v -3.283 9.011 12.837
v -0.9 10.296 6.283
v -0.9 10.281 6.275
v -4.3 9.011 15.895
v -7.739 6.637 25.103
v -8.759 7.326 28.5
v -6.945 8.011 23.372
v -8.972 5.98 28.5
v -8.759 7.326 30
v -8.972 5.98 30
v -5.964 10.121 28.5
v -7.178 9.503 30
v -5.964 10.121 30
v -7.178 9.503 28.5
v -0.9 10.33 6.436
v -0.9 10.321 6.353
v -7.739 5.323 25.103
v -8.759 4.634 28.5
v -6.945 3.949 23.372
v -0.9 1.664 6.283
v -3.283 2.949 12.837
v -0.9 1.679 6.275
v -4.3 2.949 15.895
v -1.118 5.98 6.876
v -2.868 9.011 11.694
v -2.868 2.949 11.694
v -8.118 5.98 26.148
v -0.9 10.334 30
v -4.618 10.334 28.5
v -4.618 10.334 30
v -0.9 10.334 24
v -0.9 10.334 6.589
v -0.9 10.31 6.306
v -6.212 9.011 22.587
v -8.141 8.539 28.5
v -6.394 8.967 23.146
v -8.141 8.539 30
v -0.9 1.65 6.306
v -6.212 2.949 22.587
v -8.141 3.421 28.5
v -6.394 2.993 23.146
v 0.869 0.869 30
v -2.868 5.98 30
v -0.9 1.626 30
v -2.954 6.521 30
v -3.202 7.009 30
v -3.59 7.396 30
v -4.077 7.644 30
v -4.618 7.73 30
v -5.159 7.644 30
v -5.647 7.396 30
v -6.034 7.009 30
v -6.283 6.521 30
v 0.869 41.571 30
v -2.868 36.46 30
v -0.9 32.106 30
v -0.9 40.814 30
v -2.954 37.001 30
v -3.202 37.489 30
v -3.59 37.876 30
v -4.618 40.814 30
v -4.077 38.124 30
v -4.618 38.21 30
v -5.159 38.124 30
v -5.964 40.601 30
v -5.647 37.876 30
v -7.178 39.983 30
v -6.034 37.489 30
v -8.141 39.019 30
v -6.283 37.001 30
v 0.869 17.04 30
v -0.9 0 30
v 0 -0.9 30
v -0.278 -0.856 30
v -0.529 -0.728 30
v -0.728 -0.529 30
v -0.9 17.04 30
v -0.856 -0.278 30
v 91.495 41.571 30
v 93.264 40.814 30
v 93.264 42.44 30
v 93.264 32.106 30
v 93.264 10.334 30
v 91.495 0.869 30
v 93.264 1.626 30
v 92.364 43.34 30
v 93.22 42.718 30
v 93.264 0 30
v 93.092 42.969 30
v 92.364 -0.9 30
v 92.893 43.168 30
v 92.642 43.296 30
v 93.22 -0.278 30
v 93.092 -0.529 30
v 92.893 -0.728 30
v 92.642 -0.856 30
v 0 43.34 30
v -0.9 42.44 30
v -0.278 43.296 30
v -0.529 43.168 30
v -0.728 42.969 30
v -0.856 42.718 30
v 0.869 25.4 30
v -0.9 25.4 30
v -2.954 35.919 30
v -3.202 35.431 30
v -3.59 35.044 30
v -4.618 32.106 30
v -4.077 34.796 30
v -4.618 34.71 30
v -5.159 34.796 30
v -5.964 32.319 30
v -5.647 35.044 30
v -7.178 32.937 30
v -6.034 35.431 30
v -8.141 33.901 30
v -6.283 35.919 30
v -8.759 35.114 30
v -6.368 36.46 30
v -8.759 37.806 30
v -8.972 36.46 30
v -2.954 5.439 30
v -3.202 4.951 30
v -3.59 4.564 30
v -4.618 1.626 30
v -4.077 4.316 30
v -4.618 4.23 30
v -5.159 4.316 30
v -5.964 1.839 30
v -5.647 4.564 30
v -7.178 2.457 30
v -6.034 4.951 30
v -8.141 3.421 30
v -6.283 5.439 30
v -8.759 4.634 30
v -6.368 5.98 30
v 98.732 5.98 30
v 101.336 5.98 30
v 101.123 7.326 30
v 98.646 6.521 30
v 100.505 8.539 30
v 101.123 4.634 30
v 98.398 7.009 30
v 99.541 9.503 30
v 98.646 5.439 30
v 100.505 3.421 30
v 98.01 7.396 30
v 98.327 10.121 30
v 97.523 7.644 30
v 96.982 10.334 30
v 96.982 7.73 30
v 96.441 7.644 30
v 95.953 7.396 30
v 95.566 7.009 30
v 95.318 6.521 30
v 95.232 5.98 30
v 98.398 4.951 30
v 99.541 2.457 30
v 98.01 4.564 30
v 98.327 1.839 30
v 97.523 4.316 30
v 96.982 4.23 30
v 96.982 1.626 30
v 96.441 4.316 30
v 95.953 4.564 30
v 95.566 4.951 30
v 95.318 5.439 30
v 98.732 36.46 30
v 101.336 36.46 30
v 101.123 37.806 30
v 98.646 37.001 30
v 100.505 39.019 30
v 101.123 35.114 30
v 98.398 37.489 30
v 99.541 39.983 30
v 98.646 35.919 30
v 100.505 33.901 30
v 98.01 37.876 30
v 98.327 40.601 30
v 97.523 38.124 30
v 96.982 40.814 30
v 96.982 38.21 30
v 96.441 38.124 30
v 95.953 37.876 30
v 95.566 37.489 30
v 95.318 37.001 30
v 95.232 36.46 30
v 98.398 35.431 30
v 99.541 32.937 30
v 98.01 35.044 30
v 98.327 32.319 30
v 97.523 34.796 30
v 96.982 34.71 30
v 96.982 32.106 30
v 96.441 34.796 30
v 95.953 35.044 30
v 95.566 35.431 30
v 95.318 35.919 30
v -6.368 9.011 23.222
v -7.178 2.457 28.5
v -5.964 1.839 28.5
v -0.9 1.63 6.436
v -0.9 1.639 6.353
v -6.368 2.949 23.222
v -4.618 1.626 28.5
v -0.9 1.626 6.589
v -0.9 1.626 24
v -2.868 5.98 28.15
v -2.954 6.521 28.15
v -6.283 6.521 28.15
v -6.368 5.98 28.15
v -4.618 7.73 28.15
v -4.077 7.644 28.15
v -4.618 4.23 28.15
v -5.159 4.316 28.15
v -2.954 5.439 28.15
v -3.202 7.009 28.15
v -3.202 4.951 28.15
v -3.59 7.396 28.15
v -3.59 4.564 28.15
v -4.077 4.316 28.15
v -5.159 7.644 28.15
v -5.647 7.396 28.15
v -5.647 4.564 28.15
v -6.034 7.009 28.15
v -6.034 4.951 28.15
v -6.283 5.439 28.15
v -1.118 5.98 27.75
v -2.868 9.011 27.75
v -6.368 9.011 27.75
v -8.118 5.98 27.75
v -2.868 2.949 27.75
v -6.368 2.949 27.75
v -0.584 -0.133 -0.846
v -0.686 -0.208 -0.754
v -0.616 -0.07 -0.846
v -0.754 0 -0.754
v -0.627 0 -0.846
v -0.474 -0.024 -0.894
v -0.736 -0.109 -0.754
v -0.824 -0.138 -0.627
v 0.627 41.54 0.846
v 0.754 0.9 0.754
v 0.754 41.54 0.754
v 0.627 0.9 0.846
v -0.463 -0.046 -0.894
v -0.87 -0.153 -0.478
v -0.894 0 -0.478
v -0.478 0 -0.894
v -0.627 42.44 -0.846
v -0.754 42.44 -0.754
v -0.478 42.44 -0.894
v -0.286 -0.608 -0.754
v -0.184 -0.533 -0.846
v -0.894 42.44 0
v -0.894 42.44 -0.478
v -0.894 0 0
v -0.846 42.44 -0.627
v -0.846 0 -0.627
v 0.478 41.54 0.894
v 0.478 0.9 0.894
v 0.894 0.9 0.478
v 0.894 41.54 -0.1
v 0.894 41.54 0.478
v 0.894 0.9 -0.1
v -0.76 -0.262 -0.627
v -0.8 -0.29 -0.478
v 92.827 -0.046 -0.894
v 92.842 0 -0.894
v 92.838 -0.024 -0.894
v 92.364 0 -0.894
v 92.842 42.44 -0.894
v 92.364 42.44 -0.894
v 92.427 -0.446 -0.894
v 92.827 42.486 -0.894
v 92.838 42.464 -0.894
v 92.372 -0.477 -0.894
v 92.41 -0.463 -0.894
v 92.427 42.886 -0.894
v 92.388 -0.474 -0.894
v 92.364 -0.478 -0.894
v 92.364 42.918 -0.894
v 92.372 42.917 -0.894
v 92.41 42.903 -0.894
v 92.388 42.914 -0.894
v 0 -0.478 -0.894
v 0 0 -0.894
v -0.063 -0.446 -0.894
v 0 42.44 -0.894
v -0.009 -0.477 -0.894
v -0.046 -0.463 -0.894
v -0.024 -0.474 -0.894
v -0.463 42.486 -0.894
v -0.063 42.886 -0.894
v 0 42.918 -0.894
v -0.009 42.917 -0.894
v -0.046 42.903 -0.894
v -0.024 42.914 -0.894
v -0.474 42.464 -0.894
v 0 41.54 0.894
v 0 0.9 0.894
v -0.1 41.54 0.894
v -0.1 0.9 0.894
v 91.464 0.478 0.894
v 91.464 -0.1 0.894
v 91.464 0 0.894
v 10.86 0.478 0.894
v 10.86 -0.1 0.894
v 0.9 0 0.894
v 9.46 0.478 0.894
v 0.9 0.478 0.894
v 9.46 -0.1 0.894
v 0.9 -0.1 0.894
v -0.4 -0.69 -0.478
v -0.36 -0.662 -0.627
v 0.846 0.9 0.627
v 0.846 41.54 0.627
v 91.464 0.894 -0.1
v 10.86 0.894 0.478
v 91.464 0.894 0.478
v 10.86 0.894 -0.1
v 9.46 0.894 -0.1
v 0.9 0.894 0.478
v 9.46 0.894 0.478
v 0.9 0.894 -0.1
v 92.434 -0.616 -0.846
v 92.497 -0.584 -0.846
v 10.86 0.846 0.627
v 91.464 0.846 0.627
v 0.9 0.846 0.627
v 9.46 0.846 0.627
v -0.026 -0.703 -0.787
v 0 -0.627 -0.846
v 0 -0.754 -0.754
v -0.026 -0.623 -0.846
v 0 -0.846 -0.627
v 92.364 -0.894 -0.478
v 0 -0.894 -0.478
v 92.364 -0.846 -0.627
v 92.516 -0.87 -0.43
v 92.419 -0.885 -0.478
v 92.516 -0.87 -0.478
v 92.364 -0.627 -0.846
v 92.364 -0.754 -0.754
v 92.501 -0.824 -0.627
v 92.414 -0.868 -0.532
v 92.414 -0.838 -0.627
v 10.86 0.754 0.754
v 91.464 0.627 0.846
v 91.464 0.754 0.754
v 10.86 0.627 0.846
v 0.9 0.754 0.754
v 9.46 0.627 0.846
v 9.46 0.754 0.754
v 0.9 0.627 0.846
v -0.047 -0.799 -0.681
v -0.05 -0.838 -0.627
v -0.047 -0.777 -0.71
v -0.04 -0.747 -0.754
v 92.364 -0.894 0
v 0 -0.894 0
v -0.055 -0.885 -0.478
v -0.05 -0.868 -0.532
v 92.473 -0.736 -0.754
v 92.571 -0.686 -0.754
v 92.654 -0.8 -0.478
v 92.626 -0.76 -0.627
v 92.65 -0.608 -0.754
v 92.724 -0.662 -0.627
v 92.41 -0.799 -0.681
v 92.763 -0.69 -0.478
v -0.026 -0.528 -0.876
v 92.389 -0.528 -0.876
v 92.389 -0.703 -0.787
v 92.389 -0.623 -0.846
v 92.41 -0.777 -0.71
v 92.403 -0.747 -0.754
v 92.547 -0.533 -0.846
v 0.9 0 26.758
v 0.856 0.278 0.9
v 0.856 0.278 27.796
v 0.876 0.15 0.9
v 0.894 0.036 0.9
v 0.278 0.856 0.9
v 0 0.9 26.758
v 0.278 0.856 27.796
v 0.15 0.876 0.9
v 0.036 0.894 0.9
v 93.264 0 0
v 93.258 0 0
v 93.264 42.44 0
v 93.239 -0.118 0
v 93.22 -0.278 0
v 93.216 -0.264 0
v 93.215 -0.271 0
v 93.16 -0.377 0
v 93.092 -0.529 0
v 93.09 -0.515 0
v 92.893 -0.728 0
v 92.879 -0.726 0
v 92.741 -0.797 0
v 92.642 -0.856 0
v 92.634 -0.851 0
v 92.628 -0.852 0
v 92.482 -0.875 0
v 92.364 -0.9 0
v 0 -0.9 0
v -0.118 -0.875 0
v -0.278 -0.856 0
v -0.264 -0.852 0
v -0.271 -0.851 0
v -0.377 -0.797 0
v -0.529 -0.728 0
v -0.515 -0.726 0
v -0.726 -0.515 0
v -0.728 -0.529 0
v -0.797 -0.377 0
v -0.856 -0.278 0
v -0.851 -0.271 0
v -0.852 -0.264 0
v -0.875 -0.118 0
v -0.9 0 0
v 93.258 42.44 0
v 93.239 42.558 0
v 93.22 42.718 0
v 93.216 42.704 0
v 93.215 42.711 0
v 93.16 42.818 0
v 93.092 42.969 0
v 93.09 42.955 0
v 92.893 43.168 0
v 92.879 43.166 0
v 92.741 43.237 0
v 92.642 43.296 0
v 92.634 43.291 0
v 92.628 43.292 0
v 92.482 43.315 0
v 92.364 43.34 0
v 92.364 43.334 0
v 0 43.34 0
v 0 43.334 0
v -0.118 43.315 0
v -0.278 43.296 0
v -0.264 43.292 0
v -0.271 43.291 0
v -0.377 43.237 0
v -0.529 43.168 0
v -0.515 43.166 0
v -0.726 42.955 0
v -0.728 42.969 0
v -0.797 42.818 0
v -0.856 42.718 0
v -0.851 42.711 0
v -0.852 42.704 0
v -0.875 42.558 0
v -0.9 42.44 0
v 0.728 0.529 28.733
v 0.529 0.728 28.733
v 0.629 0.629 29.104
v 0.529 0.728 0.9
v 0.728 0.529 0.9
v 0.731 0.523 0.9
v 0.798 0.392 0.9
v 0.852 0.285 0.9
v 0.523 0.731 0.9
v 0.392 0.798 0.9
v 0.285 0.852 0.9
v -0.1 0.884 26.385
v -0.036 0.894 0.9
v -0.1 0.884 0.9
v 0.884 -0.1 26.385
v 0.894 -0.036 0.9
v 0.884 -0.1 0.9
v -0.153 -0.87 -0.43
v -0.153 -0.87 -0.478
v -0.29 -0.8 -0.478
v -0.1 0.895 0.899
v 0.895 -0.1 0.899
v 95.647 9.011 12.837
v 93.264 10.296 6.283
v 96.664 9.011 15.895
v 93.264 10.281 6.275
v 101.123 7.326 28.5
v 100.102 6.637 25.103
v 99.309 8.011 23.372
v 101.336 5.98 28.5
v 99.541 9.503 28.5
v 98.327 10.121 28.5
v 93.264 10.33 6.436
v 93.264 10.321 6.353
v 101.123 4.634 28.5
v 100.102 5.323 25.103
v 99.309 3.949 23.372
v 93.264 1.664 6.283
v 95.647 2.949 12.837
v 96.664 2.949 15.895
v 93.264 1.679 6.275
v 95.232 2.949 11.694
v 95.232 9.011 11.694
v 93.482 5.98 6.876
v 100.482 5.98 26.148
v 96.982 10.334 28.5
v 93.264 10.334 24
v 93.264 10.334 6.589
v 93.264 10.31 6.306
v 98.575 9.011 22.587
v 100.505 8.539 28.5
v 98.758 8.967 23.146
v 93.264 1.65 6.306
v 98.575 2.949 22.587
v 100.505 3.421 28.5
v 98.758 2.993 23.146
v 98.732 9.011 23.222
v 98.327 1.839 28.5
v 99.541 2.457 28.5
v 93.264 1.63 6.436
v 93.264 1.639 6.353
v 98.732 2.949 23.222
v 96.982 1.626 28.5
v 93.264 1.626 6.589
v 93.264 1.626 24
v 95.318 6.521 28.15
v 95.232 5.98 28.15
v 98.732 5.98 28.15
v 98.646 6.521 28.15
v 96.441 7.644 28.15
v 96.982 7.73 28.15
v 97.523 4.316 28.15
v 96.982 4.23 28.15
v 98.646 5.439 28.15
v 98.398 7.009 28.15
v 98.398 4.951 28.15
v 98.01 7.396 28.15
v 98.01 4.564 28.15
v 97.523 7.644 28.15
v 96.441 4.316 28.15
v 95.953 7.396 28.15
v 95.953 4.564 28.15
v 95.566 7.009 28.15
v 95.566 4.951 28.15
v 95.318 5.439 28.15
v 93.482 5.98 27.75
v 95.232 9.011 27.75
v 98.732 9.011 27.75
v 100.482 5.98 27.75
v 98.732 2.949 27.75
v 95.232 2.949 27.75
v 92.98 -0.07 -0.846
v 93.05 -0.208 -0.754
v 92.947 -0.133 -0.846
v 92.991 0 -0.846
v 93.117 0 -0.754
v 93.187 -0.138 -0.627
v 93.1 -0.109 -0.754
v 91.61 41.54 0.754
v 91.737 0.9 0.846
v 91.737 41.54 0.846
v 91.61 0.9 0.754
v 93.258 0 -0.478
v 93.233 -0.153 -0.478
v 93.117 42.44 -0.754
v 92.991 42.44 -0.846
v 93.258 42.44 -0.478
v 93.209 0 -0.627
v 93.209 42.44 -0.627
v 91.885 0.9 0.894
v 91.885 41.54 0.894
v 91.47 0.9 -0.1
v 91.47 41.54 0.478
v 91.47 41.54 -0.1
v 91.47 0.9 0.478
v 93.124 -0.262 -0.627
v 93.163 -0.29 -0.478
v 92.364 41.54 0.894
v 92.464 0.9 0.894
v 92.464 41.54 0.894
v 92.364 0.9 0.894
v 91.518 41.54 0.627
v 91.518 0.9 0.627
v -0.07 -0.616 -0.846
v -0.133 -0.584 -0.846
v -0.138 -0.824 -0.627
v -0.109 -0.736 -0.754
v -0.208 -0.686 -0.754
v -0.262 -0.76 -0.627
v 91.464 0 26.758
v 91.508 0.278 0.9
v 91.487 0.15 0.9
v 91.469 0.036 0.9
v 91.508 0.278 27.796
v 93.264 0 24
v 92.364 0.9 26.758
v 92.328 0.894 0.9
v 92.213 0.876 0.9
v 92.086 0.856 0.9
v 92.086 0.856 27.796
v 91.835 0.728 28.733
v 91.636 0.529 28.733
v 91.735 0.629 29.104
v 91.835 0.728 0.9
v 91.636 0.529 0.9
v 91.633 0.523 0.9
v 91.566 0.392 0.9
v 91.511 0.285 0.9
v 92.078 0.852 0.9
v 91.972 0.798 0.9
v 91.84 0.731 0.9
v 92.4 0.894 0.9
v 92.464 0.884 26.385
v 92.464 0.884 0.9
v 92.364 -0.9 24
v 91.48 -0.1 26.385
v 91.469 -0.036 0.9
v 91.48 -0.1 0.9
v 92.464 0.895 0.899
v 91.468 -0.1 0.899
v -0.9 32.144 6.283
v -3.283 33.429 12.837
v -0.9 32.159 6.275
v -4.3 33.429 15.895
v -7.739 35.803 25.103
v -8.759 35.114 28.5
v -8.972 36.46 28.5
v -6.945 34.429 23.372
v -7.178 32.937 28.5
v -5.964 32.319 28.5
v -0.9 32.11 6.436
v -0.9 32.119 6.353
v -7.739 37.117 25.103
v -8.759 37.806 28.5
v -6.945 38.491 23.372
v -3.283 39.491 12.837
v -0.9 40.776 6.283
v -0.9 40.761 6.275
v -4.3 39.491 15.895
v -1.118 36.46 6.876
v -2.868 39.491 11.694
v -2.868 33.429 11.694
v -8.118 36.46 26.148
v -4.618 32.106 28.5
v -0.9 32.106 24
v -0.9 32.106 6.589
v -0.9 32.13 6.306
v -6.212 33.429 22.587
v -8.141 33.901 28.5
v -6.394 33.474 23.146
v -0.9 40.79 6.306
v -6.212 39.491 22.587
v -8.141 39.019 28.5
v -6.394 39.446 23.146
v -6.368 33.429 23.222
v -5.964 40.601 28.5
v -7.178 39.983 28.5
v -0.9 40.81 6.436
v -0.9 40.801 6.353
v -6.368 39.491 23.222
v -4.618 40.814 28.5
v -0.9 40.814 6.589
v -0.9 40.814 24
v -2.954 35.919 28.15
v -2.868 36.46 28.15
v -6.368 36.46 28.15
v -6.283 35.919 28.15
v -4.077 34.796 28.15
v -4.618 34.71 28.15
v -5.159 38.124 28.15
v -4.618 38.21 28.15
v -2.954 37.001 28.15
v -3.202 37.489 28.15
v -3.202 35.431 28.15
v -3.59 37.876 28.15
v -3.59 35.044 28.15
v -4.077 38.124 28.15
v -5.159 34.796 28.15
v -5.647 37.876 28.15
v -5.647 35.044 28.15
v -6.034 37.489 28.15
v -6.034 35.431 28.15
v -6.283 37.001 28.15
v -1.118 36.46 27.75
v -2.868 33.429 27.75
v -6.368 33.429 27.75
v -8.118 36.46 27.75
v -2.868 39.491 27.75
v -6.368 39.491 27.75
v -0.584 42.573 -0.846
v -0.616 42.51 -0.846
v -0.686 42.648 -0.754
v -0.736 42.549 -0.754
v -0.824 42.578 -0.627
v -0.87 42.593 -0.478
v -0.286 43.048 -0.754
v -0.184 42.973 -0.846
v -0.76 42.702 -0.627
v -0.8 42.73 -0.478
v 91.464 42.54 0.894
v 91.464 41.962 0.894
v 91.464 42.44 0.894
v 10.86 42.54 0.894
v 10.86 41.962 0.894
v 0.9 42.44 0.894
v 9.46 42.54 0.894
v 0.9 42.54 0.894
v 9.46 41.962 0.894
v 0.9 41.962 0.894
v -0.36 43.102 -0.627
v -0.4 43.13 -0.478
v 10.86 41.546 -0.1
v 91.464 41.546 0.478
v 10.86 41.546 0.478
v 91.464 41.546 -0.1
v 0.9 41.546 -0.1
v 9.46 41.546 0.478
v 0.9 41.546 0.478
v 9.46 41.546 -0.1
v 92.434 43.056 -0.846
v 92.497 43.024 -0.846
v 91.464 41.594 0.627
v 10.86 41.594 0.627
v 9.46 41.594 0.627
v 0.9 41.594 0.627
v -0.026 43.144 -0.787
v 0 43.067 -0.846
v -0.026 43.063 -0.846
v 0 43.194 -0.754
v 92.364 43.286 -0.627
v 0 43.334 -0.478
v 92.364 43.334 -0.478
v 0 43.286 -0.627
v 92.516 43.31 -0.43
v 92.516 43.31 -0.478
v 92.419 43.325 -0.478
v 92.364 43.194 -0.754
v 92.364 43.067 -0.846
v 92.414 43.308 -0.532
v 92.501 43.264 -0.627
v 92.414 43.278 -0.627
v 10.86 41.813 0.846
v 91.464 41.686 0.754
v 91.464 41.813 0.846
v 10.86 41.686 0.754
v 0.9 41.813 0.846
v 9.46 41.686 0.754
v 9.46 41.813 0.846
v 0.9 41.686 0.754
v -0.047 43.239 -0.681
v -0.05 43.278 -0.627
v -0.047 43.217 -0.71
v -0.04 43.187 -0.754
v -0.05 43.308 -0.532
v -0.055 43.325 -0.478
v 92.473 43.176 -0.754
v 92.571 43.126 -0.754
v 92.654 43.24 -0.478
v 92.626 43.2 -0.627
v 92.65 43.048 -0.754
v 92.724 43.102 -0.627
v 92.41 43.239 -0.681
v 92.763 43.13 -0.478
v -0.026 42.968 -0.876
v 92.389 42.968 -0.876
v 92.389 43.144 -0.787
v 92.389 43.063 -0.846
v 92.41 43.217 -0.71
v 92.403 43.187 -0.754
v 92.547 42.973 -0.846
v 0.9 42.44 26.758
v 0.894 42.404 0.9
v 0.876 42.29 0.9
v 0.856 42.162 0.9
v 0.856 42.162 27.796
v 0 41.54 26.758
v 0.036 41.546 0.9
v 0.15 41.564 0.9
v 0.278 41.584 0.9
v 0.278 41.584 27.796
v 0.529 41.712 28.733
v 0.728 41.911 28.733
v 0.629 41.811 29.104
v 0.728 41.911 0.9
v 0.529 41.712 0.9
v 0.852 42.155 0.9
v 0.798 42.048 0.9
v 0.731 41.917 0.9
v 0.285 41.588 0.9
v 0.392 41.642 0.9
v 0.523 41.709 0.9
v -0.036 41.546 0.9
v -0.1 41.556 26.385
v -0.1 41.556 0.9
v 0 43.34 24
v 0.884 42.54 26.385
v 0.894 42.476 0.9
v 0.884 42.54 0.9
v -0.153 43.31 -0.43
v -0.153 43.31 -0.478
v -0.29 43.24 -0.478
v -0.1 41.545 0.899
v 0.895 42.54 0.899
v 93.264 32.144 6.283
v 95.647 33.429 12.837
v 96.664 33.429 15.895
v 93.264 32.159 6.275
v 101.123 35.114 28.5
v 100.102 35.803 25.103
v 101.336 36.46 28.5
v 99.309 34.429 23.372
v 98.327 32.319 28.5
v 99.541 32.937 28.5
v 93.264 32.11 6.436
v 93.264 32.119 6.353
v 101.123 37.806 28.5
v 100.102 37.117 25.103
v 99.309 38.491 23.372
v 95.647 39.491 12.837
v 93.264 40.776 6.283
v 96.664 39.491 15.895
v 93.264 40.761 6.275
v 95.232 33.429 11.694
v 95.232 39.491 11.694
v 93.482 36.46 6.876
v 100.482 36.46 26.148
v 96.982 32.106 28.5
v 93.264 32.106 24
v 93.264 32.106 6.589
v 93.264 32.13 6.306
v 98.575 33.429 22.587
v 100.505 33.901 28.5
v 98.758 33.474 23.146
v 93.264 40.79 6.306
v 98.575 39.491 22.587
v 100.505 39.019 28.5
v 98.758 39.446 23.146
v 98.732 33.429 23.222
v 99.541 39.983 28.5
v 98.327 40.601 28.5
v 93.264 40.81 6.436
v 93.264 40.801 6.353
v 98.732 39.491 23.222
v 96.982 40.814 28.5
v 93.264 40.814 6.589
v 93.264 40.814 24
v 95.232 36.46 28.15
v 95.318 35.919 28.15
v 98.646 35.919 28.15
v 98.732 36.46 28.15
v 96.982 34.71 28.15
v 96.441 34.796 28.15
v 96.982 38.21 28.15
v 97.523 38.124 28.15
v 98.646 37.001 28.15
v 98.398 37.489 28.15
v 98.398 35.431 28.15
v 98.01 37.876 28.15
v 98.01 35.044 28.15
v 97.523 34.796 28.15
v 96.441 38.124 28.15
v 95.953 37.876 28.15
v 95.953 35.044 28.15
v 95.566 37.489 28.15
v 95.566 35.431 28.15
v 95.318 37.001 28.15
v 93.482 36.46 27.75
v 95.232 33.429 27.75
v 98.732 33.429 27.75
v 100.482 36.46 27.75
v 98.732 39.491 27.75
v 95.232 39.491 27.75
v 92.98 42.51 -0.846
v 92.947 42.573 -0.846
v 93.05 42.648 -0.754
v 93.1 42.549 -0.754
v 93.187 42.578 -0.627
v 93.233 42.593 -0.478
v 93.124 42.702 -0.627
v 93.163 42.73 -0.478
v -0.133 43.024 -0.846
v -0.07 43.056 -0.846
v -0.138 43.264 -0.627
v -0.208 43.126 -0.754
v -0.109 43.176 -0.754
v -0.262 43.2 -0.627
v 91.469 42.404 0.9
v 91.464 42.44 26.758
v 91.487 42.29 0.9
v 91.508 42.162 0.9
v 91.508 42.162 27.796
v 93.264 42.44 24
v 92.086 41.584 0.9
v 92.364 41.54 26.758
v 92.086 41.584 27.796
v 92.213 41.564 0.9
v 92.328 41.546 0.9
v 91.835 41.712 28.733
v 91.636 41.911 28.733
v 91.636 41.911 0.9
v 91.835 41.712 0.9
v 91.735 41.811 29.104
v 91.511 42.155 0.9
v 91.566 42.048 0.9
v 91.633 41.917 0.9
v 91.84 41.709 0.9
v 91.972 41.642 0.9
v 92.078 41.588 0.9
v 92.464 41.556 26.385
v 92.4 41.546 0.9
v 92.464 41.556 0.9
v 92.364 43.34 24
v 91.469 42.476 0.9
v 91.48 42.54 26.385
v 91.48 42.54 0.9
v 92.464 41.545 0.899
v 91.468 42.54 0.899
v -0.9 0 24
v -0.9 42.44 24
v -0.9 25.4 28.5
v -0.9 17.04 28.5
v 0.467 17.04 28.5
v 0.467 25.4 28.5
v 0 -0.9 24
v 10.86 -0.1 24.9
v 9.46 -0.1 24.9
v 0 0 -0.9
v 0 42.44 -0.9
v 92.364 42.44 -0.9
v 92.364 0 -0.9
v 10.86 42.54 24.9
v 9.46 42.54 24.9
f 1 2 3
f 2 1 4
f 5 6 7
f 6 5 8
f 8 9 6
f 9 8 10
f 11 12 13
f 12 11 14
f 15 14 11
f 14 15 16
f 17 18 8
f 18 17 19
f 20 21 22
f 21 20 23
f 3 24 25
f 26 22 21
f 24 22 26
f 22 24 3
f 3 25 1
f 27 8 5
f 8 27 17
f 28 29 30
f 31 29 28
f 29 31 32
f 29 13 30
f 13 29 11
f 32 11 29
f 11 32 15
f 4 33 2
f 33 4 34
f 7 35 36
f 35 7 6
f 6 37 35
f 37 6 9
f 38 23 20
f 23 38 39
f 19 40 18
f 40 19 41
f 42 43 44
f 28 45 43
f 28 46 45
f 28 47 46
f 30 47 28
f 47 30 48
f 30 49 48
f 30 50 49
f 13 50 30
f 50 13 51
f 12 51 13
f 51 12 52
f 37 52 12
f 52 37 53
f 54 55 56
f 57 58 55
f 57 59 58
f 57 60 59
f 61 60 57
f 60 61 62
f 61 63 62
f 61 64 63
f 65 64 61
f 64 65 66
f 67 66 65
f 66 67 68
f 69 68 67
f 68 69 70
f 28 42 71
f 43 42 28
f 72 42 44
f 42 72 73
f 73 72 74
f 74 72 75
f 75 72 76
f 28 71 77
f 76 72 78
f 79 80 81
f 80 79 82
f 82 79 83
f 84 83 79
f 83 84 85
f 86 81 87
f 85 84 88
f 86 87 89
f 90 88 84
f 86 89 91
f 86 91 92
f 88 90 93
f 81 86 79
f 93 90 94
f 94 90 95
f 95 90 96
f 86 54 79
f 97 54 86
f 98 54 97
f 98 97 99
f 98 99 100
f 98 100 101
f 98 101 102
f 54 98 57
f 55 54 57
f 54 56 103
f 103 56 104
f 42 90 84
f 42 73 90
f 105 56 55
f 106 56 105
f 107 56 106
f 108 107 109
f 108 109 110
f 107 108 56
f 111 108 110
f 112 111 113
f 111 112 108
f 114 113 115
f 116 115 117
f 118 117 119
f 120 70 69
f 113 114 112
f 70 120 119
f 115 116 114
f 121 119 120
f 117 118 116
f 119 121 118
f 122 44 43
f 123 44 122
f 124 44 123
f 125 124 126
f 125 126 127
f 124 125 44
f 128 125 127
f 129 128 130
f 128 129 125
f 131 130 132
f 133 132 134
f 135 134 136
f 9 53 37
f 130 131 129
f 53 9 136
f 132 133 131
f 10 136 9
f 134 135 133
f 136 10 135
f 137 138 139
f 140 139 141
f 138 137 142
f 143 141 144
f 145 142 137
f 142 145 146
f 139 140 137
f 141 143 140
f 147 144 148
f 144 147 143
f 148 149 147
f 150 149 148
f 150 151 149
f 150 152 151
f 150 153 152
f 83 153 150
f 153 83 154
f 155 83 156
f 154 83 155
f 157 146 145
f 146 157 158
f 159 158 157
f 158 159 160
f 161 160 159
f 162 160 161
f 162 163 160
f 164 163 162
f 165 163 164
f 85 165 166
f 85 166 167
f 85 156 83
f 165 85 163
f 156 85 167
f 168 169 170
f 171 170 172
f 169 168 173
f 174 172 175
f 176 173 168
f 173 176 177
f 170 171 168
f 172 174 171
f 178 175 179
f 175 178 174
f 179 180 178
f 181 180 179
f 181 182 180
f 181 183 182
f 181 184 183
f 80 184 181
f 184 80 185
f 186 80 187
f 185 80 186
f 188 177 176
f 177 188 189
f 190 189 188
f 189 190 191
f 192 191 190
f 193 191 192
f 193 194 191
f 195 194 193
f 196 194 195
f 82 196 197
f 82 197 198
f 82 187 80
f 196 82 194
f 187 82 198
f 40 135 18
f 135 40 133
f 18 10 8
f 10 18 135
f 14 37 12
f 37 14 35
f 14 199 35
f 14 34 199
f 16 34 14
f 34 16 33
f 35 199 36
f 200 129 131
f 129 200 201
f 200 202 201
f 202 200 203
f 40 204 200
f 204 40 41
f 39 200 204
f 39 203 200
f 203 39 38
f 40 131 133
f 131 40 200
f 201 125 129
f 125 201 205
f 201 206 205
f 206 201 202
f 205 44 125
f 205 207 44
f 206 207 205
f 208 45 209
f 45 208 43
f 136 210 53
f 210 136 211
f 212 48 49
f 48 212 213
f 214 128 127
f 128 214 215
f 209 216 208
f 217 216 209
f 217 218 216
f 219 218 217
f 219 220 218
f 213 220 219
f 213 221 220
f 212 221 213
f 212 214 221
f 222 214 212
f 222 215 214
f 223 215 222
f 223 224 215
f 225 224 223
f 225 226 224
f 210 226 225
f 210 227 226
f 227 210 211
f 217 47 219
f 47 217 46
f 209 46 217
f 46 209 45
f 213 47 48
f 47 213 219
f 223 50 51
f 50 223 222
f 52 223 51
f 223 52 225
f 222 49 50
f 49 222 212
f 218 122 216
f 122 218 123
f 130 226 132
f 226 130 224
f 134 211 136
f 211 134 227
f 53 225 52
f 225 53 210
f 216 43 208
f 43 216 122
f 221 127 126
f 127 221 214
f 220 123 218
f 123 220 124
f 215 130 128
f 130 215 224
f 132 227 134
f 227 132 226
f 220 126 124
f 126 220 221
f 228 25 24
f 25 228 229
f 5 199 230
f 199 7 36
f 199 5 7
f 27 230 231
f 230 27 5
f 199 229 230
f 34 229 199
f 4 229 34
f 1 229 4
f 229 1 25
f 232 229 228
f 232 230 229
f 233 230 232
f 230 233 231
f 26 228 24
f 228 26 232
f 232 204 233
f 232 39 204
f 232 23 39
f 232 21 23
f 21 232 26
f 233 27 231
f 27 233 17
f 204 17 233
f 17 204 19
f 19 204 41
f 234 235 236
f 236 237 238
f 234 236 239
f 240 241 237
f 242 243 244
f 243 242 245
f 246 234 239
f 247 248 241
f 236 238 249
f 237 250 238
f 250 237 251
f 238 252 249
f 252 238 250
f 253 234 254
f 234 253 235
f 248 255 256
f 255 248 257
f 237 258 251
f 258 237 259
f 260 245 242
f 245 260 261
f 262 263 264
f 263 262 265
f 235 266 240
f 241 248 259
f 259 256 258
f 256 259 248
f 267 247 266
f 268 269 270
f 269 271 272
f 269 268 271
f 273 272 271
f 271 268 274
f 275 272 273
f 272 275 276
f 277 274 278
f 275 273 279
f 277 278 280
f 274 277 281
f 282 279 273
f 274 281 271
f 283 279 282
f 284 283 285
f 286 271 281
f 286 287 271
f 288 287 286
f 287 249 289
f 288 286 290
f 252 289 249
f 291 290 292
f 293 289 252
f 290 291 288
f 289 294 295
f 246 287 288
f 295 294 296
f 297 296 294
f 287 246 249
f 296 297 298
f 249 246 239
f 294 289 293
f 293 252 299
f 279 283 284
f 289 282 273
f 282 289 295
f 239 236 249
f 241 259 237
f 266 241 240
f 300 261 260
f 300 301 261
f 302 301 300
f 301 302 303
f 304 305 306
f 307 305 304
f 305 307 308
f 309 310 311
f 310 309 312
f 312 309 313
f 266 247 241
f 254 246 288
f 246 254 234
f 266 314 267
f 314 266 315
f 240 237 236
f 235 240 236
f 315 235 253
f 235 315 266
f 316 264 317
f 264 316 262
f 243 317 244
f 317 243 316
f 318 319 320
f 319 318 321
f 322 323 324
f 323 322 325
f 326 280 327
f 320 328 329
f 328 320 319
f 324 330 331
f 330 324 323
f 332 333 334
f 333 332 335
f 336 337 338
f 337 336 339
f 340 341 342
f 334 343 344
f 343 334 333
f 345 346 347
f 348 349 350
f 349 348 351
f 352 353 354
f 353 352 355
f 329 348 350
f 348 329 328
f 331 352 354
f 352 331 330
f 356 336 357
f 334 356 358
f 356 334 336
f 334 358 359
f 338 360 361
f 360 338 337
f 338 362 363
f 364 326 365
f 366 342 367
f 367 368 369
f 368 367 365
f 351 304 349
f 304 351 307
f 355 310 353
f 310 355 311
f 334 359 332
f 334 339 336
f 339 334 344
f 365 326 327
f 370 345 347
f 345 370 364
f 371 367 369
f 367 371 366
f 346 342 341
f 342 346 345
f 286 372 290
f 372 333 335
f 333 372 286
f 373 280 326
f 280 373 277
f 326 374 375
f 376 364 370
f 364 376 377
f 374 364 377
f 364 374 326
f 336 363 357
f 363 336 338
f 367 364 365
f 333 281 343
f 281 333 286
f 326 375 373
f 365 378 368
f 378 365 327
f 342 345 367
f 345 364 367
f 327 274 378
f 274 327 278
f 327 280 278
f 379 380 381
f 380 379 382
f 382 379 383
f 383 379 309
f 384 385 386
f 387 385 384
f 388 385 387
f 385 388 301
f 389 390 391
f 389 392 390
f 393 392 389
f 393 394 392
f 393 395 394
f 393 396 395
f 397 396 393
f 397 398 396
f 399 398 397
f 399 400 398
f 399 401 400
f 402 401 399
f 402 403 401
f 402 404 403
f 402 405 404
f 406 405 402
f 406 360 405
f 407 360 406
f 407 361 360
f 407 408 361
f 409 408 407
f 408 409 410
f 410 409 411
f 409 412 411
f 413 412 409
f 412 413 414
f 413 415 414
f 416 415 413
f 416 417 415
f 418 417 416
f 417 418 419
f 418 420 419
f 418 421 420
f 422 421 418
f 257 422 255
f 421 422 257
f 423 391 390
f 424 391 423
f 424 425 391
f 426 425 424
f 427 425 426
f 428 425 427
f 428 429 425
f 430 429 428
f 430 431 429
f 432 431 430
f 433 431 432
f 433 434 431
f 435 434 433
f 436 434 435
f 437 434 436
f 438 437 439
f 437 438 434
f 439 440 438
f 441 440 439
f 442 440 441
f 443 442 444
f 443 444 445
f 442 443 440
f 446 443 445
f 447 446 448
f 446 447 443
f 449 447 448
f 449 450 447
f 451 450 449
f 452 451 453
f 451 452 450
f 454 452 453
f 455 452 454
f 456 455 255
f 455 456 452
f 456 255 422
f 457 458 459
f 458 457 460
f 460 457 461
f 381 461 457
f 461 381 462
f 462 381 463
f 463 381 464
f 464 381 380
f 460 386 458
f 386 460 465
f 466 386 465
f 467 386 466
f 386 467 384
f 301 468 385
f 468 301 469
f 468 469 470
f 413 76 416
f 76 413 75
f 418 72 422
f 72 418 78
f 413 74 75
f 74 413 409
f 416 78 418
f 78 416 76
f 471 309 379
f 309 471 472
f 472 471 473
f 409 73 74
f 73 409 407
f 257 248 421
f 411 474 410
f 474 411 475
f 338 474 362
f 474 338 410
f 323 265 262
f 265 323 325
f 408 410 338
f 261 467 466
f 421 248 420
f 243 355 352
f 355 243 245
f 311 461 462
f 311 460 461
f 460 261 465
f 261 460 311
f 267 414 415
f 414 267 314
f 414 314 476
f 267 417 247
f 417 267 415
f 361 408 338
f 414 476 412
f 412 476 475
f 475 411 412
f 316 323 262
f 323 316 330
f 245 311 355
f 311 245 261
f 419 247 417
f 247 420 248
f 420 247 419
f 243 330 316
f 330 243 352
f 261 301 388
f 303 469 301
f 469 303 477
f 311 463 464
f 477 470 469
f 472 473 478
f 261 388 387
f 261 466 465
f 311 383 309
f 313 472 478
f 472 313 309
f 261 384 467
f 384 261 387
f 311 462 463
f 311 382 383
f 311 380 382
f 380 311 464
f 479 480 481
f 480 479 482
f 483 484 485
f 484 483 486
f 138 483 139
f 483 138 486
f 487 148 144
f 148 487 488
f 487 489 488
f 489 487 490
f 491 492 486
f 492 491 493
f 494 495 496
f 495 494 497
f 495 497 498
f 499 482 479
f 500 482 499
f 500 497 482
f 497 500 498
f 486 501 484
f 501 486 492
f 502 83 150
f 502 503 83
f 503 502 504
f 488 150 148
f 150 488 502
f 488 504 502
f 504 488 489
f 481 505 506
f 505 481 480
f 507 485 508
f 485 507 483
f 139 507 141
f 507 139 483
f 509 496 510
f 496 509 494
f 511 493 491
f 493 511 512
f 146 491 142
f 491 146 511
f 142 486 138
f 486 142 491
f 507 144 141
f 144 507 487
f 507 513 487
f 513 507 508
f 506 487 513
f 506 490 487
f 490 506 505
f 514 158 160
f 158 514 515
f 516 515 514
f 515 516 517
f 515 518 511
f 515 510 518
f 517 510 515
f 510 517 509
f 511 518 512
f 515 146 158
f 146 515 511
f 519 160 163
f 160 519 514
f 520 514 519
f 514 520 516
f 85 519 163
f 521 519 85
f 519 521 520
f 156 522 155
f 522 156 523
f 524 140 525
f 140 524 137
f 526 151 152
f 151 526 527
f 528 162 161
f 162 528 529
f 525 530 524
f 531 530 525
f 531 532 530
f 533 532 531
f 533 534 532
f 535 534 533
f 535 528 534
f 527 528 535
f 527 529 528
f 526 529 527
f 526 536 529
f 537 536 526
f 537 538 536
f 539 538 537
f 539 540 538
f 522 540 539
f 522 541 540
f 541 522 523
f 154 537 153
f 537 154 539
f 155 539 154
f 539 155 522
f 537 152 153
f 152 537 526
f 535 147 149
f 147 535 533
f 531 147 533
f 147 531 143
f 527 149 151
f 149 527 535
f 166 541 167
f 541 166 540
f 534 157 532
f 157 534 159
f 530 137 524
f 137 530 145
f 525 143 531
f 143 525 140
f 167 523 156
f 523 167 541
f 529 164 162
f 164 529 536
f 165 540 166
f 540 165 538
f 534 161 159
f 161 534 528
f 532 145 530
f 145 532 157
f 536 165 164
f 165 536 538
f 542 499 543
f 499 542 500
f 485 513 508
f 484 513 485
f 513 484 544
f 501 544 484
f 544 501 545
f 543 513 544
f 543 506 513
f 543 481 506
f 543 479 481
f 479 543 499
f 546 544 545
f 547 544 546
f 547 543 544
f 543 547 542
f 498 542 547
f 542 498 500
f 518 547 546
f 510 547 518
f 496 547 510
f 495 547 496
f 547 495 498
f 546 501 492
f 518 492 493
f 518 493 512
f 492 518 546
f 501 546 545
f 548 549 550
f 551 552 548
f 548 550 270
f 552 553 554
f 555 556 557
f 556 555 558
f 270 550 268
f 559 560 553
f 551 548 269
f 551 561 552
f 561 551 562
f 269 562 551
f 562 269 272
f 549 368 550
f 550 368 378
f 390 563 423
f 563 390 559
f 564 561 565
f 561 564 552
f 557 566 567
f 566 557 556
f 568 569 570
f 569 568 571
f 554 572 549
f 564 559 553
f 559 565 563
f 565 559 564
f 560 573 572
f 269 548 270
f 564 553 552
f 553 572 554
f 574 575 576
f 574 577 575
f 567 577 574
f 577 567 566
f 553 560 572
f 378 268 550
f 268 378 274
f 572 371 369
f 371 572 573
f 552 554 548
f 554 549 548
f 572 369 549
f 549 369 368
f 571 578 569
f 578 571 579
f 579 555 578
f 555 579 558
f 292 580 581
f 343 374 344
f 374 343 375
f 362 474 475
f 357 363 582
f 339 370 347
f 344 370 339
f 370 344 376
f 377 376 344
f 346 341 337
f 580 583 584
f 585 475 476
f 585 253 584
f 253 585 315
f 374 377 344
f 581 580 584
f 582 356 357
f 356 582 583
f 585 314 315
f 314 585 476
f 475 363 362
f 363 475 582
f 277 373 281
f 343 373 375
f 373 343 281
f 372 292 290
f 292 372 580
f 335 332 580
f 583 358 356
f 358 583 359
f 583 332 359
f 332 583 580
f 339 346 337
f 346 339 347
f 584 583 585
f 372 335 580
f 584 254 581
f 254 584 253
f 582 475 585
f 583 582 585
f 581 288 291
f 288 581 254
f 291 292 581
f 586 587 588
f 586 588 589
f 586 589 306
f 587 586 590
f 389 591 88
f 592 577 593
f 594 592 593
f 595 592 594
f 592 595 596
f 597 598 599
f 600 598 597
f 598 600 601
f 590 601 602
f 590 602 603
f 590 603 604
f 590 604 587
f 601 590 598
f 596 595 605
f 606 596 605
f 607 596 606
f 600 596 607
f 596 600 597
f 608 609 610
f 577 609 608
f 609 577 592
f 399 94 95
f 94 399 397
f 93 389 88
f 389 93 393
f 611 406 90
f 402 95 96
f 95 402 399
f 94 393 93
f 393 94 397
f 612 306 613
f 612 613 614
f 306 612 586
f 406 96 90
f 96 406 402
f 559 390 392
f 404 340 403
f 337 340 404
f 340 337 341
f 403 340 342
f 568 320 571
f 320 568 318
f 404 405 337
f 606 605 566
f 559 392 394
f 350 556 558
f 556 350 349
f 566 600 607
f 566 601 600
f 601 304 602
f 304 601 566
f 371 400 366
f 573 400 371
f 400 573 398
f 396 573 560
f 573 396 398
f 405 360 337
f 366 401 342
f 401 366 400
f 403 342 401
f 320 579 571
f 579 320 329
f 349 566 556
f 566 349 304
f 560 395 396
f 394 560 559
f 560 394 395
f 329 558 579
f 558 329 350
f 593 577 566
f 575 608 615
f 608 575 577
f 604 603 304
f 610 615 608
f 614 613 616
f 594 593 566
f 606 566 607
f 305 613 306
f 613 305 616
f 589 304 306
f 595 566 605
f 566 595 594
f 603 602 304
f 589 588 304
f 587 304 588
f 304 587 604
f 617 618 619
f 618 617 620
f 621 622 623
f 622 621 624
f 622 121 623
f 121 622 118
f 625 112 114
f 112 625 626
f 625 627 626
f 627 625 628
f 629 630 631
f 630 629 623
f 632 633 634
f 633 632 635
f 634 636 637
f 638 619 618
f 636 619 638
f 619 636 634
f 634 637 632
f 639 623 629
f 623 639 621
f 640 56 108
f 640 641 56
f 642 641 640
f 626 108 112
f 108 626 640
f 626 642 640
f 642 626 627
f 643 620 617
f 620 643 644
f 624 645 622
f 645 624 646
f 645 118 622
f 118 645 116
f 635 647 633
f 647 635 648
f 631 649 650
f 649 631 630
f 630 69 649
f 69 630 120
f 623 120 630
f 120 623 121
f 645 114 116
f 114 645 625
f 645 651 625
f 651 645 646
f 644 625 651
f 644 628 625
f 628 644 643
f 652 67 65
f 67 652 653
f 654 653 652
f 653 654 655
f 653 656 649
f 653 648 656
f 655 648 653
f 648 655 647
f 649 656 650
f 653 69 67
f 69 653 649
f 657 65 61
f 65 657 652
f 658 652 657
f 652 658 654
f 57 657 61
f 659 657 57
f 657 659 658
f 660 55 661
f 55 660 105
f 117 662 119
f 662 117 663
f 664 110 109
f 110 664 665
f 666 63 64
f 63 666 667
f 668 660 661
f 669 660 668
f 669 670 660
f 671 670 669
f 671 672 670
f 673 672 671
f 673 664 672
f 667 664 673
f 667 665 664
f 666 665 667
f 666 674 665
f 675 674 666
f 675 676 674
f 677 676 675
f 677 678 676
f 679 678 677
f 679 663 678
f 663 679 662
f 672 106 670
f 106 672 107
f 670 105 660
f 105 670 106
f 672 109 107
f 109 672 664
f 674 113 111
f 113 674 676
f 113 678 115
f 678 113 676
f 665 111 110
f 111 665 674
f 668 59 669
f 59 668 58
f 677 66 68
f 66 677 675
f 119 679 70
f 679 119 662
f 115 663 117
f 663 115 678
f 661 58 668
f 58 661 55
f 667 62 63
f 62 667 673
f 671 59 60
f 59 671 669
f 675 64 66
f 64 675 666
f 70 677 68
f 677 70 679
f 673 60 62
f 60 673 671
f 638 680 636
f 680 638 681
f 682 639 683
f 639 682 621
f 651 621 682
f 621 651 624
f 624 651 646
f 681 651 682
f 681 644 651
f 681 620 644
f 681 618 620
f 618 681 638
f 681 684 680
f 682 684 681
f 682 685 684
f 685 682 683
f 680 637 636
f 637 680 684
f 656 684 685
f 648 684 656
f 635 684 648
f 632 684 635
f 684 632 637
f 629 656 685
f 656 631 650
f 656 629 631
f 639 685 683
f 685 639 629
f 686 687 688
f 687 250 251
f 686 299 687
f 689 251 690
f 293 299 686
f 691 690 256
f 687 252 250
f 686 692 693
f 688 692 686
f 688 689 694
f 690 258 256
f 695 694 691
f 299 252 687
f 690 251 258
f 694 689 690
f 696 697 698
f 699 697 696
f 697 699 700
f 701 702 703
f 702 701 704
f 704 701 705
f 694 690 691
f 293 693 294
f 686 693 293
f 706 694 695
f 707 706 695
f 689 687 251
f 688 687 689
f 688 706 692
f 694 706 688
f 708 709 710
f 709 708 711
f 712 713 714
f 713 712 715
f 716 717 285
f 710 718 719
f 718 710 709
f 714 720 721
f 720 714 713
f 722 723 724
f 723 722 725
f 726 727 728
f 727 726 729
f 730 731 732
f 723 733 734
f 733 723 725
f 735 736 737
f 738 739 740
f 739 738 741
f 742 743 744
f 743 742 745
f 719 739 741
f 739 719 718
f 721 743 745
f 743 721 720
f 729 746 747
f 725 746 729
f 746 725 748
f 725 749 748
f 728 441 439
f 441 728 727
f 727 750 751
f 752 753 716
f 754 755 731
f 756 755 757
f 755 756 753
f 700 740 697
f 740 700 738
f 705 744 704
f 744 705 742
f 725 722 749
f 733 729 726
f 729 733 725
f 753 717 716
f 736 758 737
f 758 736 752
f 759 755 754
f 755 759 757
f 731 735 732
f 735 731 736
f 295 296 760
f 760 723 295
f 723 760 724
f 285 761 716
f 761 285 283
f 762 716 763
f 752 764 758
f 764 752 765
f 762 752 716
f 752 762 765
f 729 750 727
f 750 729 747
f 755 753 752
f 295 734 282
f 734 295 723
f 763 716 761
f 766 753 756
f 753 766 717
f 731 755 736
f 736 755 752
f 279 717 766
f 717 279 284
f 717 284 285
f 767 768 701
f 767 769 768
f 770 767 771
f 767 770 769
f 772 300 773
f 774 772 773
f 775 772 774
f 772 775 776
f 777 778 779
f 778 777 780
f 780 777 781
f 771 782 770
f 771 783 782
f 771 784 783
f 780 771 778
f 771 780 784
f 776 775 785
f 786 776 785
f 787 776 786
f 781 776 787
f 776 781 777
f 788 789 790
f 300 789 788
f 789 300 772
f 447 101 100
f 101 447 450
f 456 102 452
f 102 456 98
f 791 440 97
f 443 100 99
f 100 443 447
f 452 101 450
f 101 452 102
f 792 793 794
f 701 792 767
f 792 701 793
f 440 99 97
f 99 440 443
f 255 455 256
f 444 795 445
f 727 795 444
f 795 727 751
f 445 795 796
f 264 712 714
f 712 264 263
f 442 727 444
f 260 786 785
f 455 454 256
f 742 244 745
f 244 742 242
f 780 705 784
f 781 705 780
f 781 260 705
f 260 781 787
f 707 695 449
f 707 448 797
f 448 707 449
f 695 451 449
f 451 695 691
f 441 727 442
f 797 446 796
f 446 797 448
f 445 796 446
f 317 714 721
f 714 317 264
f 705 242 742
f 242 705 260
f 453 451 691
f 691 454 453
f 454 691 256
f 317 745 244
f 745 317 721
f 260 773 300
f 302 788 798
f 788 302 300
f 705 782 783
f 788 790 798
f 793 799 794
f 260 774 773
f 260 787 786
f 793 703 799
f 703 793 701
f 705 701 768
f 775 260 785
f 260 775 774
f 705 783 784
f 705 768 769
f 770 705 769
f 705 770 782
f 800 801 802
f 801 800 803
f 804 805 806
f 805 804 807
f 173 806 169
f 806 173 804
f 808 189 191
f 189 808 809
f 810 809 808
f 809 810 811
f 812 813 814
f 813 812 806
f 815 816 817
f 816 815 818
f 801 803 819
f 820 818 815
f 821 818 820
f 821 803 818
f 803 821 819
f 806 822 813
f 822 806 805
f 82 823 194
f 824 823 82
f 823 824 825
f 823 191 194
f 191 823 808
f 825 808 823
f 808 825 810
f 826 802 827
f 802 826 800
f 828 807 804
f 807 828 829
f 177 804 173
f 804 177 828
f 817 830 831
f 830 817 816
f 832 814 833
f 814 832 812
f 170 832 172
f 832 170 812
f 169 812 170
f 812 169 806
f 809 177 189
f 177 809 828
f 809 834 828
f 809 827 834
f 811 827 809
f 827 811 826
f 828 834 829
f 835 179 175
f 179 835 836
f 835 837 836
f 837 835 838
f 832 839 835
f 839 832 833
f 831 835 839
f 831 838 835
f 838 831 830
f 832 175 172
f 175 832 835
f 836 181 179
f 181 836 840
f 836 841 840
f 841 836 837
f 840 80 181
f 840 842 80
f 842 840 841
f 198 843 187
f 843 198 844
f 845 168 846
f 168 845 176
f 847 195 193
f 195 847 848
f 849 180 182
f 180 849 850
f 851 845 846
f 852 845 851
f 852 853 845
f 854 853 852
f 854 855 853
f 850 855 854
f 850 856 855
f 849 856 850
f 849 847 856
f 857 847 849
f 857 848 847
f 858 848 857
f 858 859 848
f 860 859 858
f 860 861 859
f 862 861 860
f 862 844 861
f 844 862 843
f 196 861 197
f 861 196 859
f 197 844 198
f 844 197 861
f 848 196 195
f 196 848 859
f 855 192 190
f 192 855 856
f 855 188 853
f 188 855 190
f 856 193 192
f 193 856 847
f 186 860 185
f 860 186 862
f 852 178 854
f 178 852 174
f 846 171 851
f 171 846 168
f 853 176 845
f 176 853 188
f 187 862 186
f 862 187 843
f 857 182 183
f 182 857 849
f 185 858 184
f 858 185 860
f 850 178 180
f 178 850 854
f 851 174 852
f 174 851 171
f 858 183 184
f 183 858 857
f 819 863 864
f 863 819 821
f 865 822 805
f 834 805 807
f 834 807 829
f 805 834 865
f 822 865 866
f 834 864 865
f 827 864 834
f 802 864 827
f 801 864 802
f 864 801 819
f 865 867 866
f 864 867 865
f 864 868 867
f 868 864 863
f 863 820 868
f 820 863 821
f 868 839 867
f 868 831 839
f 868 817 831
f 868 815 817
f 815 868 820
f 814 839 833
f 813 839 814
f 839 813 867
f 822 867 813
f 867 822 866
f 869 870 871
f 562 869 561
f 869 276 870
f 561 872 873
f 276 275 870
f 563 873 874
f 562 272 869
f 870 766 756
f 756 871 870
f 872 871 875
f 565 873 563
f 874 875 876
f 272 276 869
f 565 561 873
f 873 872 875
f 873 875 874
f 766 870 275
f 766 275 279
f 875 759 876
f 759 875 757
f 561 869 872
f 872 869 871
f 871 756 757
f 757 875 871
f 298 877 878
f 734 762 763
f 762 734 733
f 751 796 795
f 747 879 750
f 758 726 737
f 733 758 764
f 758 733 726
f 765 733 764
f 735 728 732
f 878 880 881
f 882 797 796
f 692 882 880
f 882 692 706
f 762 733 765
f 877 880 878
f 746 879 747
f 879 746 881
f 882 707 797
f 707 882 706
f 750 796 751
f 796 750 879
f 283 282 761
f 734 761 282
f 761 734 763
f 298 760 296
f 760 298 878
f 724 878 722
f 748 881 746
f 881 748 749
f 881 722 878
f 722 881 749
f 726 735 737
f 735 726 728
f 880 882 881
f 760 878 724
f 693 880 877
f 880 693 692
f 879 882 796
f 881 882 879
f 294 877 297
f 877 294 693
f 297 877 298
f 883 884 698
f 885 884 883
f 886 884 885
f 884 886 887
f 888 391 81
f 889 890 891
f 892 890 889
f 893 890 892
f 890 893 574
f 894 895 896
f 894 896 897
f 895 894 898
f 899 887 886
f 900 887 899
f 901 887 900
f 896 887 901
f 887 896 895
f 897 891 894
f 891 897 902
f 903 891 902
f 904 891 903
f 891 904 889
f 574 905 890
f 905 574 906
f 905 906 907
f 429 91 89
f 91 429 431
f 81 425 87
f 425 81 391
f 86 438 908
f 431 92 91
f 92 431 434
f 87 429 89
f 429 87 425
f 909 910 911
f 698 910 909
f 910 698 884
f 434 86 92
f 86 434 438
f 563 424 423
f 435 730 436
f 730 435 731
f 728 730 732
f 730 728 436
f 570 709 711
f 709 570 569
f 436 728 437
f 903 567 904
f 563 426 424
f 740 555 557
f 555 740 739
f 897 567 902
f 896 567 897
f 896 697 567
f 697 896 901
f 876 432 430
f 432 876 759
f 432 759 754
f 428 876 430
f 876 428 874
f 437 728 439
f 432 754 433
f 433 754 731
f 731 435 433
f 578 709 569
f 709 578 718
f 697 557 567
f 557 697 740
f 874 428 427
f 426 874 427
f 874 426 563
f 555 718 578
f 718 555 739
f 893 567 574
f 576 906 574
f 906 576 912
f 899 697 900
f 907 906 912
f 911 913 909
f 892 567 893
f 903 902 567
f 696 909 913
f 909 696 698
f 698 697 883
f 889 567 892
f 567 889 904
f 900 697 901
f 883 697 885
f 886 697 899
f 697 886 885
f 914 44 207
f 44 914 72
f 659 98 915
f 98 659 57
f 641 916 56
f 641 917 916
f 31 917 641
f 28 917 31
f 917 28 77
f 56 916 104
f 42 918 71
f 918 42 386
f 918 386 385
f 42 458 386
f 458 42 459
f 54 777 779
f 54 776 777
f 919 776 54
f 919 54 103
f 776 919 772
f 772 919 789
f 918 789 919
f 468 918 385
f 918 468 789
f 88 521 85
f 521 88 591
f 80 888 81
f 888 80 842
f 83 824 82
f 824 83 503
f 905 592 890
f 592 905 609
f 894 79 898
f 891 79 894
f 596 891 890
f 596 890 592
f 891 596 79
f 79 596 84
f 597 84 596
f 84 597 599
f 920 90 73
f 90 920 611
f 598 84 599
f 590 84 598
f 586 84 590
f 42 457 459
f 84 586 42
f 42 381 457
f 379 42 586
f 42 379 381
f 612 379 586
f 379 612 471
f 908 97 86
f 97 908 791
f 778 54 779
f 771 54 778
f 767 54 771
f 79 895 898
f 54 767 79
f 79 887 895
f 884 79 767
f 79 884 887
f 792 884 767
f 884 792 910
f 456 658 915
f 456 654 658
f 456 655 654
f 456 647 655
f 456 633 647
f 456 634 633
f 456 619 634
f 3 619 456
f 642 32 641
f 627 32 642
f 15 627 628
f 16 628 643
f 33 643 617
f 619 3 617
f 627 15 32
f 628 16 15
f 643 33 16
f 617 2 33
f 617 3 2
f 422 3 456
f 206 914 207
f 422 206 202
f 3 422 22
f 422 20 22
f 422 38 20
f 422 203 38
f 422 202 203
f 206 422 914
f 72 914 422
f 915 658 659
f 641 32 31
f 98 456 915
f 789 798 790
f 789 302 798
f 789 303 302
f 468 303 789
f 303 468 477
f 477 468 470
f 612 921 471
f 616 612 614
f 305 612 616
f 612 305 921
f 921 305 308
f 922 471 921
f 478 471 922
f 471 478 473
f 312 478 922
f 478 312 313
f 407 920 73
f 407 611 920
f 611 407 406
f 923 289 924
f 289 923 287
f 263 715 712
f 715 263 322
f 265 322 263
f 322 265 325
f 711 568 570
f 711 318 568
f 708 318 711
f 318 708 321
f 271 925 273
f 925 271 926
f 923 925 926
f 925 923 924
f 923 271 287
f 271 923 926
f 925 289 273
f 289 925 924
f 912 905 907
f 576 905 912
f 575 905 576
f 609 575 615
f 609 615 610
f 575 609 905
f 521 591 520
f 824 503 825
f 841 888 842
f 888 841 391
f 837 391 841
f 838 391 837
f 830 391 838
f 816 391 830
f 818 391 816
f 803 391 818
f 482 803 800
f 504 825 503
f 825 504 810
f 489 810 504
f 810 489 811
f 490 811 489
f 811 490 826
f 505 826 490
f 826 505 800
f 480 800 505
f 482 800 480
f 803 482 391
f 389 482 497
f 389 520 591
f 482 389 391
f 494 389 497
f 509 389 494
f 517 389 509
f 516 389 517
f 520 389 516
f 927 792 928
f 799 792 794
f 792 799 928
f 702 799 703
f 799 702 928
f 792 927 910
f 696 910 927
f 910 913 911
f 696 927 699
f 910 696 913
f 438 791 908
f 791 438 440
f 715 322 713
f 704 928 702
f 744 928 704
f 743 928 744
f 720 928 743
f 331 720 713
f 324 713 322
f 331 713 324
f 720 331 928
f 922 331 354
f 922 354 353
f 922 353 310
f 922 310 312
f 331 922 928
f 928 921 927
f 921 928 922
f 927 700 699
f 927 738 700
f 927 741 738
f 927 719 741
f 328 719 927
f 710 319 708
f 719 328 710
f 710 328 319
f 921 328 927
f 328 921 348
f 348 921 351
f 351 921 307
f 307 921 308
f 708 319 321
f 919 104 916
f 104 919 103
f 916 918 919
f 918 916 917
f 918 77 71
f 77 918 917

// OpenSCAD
h = 30;      // Výška horní části
s = 4;      // Výška spodní části
a = 4;       // Šířka krabičky (počet obsazených dírek)
b = 9;      // Délka krabičky (počet obsazených dírek)
d = 1.8;     // Průměr trnů a šířka hlavních příček (>1)
c = 0.8;   // Tloušťka stěn

drat = 1.5;  // Průměr/výška otvoru na dráty

okraj = 2;  // šířka horního okraje

clear = 0.4;      // K otvoru na matičku
nut_size = 6.6;     // K otvoru na matičku

MLAB_grid = 10.16;
pedestal_height = 2; 

ot = 6*MLAB_grid/11;         //Vzdálenost okraje od děr v plošňáku pro stranu s tunelem
o = MLAB_grid/2+d/2;   //Vzdálenost zbylých okrajů od děr v plošňáku

tp = 1.4;  // Tloušťka přepážky

$fn=20;

roh =0.5; // Zaoblení hran

// Kvádr a válec se zaoblenými hranami
module roundcube(size,center=true,corner) {
  minkowski() {
    cube(size,center);
    sphere(corner);
  }
}

module roundcylinder(size, r, center=true, corner) {
  minkowski() {
    cylinder(size, r, r, center);
    sphere(corner);
  }
}







module konstrukce1()
{
  difference() {
  union() {
      // Hlavní příčky
     translate([0,(MLAB_grid*(a-1))/2+o,0]) 
      roundcube([d-2*roh, MLAB_grid*(a-1)+2*o, d-2*roh],center = true, corner= roh);
     
     translate([(MLAB_grid*(b-1))/2+ot,0,0])       
      roundcube([MLAB_grid*(b-1)+2*ot, d-2*roh, d-2*roh],corner= roh); 
      
     translate([0, 0, h/2])
      cylinder(h, d/2, d/2, center = true);
      
 
 // ZAOBLENI ROHU    
  hull() {
difference() {
            union() {
    translate([0,(MLAB_grid*(a+1))/2,0]) 
      roundcube([d-2*roh,MLAB_grid*(a+1),d-2*roh],center = true, corner= roh);
     
     translate([(MLAB_grid*(b+1))/2,0,0])       
      roundcube([MLAB_grid*(b+1),d-2*roh,d-2*roh],corner= roh); 
      
     translate([0, 0, h/2-d/2+2*roh])
      roundcylinder(h, (d/2-roh), corner = roh);
            }
      translate([0,(MLAB_grid*(a+1))/2 + d,0]) 
        cube([20*d,MLAB_grid*(a+1)+d,20*d], center = true);
     
      translate([(MLAB_grid*(b+1))/2 + d,0,0]) 
        cube([MLAB_grid*(b+1)+d,20*d,20*d], center = true);
            
      translate([0, 0, -d/2 + d])
        cylinder(h + d, 20*d);
        }
    }
   

 //Pacička

translate([ot-MLAB_grid, o,h-1.5]) {
    difference() {  
        hull() {
        translate([0,-3/7*MLAB_grid,0])
            cube([MLAB_grid-ot-0.2,2*3/7*MLAB_grid,1.5]);
            cylinder(1.5, 3/7*MLAB_grid, 3/7*MLAB_grid);
        translate([MLAB_grid-ot-c, -3/7*MLAB_grid, -3*h/4])
            cube([c-0.2, 2*3/7*MLAB_grid, 1.5]);
        }
    translate([0,0,1.5/2+0.4])   
    cylinder(3, 3.5/2, 3.5/2, center = true);
    translate([0,0,-h/2])
    rotate(0)
    cylinder (h-1.5, r= (nut_size+clear)/2, center = true, $fn=6);
    } 
}

  
}

/* // Oříznutí sloupků
translate([0,0, h - 10]) 
        cube([MLAB_grid*(b)+o,MLAB_grid*(a)+o,20*d]); */
    
/* //Pacička

translate([o-MLAB_grid, o,h -d/2]) {
    difference() {  
        union() {
    translate([0,-3.5,0])
    cube([MLAB_grid-o,2*3.5,d/2]);
    cylinder(d/2, 1/3*MLAB_grid, 1/3*MLAB_grid);
        }
        
    cylinder(h, 3.5/2, 3.5/2, center = true);
    } 
}
 
// Horní příčka k pacičce
translate([-d/2, 0, h - d/2])
    cube([d/2,MLAB_grid*(a-1)+2*o,d/2]);

*/

}







}
konstrukce1();

  



//Zrcadlení

translate([MLAB_grid*(b-1)+2*ot,0,0]) 
mirror(1,0,1) konstrukce1();
translate([0,MLAB_grid*(a-1)+2*o,0])
mirror([0,1,0]) konstrukce1();
translate([MLAB_grid*(b-1)+2*ot,0,0]) 
mirror(1,0,1)
translate([0,MLAB_grid*(a-1)+2*o,0])
mirror([0,1,0]) konstrukce1();



// Obal klece
    difference() {
        union() {
translate([-d/2,0,0]) 
cube([c, MLAB_grid*(a-1)+2*o, h]);

translate([0,-d/2,0]) 
cube([(MLAB_grid*(b-1))+2*ot, c, h]);

translate([0,0,-d/2]) 
cube([(MLAB_grid*(b-1))+2*ot, (MLAB_grid*(a-1))+2*o, c]);
            
translate([(MLAB_grid*(b-1))+2*ot+d/2-c,0,0]) 
cube([c, MLAB_grid*(a-1)+2*o, h]);

translate([0,(MLAB_grid*(a-1))+2*o+d/2-c,0]) 
cube([(MLAB_grid*(b-1))+2*ot, c, h]);
            
// Horní příčky
translate([okraj/2-d/2, (MLAB_grid*(a-1)+2*o)/2, h-1.5*okraj])
   difference() {
    cube([okraj,MLAB_grid*(a-1)+2*o,3*okraj], center = true);  
    translate([okraj/2,0,0])
    rotate([0,15,0])
    cube([okraj,MLAB_grid*(a-1)+2*o,10*okraj], center = true);   
   } 
        
translate([(MLAB_grid*(b-1))+2*ot-okraj/2+d/2, (MLAB_grid*(a-1)+2*o)/2, h - 1.5*okraj])
    difference() {
    cube([okraj,MLAB_grid*(a-1)+2*o, 3*okraj], center = true);
    translate([-okraj/2,0,0])    
    rotate([0,-15,0])
    cube([okraj,MLAB_grid*(a-1)+2*o,10*okraj], center = true);   
   } 
        
translate([(MLAB_grid*(b-1)+2*ot)/2, okraj/2-d/2, h - 1.5*okraj])
    difference() { 
   cube([MLAB_grid*(b-1)+2*ot, okraj, 3*okraj], center = true);
  
   translate([0,okraj/2,0])
    rotate([-15, 0, 0])
   cube([MLAB_grid*(b-1)+2*ot, okraj, 10*okraj], center = true);
   }
       
 translate([(MLAB_grid*(b-1)+2*ot)/2, (MLAB_grid*(a-1))+2*o-okraj/2+d/2, h - 1.5*okraj])
    difference() { 
   cube([MLAB_grid*(b-1)+2*ot, okraj, 3*okraj], center = true);
   translate([0,-okraj/2,0])
    rotate([15, 0, 0])
   cube([MLAB_grid*(b-1)+2*ot, okraj, 10*okraj], center = true);
   }
 
 
   
// Přepážka 1 - u otvoru na dráty
       translate([MLAB_grid, o+MLAB_grid*1.5, (h-5)/2-d/2+c])
       cube([tp, MLAB_grid*(a)+2*d-c, h-5], center = true);
    
        } 
        
//Otvor na dráty
        translate([-5, ((MLAB_grid*(a-1))+2*o)/2,h])
    cube([13,MLAB_grid-d,2*drat],center=true);      
     
/*  translate([2.5*okraj-d/2, (MLAB_grid*(a-1)+2*o)/2, h])
   cube([5*okraj-1.9,MLAB_grid,2], center = true);     */
           
        
/*    translate([-5, ((MLAB_grid*(a-1))+2*o)/2,h])
    rotate([0,90,0])
    cylinder(10, drat/2, drat/2, centre=true);
        
    translate([-5, ((MLAB_grid*(a-1))+2*o)/2+drat,h])
    rotate([0,90,0])
    cylinder(10, drat/2, drat/2, centre=true);
        
    translate([-5, ((MLAB_grid*(a-1))+2*o)/2-drat,h])
    rotate([0,90,0])
    cylinder(10, drat/2, drat/2, centre=true);
    
    translate([-5, ((MLAB_grid*(a-1))+2*o)/2-2*drat,h])
    rotate([0,90,0])
    cylinder(10, drat/2, drat/2, centre=true);
        
    translate([-5, ((MLAB_grid*(a-1))+2*o)/2+2*drat,h])
    rotate([0,90,0])
    cylinder(10, drat/2, drat/2, centre=true); */
    }
    

    


    
/*
    
    // Konkrétní trny procházející plošným spojem
 translate([ot+MLAB_grid*1, o, (h + s + pedestal_height)/2-d/2+2*roh])
       roundcylinder(h + s + pedestal_height, (d/2-roh), corner = roh);
 translate([ot+MLAB_grid*4, o+MLAB_grid*3, (h + s + pedestal_height)/2-d/2+2*roh])
       roundcylinder(h + s + pedestal_height, (d/2-roh), corner = roh);
 translate([ot+MLAB_grid*5, o, (h + s + pedestal_height)/2-d/2+2*roh])
       roundcylinder(h + s + pedestal_height, (d/2-roh), corner = roh);
 translate([ot+MLAB_grid*8, o+MLAB_grid*3, (h + s + pedestal_height)/2-d/2+2*roh])
       roundcylinder(h + s + pedestal_height, (d/2-roh), corner = roh);
       
  
   */
 
   
